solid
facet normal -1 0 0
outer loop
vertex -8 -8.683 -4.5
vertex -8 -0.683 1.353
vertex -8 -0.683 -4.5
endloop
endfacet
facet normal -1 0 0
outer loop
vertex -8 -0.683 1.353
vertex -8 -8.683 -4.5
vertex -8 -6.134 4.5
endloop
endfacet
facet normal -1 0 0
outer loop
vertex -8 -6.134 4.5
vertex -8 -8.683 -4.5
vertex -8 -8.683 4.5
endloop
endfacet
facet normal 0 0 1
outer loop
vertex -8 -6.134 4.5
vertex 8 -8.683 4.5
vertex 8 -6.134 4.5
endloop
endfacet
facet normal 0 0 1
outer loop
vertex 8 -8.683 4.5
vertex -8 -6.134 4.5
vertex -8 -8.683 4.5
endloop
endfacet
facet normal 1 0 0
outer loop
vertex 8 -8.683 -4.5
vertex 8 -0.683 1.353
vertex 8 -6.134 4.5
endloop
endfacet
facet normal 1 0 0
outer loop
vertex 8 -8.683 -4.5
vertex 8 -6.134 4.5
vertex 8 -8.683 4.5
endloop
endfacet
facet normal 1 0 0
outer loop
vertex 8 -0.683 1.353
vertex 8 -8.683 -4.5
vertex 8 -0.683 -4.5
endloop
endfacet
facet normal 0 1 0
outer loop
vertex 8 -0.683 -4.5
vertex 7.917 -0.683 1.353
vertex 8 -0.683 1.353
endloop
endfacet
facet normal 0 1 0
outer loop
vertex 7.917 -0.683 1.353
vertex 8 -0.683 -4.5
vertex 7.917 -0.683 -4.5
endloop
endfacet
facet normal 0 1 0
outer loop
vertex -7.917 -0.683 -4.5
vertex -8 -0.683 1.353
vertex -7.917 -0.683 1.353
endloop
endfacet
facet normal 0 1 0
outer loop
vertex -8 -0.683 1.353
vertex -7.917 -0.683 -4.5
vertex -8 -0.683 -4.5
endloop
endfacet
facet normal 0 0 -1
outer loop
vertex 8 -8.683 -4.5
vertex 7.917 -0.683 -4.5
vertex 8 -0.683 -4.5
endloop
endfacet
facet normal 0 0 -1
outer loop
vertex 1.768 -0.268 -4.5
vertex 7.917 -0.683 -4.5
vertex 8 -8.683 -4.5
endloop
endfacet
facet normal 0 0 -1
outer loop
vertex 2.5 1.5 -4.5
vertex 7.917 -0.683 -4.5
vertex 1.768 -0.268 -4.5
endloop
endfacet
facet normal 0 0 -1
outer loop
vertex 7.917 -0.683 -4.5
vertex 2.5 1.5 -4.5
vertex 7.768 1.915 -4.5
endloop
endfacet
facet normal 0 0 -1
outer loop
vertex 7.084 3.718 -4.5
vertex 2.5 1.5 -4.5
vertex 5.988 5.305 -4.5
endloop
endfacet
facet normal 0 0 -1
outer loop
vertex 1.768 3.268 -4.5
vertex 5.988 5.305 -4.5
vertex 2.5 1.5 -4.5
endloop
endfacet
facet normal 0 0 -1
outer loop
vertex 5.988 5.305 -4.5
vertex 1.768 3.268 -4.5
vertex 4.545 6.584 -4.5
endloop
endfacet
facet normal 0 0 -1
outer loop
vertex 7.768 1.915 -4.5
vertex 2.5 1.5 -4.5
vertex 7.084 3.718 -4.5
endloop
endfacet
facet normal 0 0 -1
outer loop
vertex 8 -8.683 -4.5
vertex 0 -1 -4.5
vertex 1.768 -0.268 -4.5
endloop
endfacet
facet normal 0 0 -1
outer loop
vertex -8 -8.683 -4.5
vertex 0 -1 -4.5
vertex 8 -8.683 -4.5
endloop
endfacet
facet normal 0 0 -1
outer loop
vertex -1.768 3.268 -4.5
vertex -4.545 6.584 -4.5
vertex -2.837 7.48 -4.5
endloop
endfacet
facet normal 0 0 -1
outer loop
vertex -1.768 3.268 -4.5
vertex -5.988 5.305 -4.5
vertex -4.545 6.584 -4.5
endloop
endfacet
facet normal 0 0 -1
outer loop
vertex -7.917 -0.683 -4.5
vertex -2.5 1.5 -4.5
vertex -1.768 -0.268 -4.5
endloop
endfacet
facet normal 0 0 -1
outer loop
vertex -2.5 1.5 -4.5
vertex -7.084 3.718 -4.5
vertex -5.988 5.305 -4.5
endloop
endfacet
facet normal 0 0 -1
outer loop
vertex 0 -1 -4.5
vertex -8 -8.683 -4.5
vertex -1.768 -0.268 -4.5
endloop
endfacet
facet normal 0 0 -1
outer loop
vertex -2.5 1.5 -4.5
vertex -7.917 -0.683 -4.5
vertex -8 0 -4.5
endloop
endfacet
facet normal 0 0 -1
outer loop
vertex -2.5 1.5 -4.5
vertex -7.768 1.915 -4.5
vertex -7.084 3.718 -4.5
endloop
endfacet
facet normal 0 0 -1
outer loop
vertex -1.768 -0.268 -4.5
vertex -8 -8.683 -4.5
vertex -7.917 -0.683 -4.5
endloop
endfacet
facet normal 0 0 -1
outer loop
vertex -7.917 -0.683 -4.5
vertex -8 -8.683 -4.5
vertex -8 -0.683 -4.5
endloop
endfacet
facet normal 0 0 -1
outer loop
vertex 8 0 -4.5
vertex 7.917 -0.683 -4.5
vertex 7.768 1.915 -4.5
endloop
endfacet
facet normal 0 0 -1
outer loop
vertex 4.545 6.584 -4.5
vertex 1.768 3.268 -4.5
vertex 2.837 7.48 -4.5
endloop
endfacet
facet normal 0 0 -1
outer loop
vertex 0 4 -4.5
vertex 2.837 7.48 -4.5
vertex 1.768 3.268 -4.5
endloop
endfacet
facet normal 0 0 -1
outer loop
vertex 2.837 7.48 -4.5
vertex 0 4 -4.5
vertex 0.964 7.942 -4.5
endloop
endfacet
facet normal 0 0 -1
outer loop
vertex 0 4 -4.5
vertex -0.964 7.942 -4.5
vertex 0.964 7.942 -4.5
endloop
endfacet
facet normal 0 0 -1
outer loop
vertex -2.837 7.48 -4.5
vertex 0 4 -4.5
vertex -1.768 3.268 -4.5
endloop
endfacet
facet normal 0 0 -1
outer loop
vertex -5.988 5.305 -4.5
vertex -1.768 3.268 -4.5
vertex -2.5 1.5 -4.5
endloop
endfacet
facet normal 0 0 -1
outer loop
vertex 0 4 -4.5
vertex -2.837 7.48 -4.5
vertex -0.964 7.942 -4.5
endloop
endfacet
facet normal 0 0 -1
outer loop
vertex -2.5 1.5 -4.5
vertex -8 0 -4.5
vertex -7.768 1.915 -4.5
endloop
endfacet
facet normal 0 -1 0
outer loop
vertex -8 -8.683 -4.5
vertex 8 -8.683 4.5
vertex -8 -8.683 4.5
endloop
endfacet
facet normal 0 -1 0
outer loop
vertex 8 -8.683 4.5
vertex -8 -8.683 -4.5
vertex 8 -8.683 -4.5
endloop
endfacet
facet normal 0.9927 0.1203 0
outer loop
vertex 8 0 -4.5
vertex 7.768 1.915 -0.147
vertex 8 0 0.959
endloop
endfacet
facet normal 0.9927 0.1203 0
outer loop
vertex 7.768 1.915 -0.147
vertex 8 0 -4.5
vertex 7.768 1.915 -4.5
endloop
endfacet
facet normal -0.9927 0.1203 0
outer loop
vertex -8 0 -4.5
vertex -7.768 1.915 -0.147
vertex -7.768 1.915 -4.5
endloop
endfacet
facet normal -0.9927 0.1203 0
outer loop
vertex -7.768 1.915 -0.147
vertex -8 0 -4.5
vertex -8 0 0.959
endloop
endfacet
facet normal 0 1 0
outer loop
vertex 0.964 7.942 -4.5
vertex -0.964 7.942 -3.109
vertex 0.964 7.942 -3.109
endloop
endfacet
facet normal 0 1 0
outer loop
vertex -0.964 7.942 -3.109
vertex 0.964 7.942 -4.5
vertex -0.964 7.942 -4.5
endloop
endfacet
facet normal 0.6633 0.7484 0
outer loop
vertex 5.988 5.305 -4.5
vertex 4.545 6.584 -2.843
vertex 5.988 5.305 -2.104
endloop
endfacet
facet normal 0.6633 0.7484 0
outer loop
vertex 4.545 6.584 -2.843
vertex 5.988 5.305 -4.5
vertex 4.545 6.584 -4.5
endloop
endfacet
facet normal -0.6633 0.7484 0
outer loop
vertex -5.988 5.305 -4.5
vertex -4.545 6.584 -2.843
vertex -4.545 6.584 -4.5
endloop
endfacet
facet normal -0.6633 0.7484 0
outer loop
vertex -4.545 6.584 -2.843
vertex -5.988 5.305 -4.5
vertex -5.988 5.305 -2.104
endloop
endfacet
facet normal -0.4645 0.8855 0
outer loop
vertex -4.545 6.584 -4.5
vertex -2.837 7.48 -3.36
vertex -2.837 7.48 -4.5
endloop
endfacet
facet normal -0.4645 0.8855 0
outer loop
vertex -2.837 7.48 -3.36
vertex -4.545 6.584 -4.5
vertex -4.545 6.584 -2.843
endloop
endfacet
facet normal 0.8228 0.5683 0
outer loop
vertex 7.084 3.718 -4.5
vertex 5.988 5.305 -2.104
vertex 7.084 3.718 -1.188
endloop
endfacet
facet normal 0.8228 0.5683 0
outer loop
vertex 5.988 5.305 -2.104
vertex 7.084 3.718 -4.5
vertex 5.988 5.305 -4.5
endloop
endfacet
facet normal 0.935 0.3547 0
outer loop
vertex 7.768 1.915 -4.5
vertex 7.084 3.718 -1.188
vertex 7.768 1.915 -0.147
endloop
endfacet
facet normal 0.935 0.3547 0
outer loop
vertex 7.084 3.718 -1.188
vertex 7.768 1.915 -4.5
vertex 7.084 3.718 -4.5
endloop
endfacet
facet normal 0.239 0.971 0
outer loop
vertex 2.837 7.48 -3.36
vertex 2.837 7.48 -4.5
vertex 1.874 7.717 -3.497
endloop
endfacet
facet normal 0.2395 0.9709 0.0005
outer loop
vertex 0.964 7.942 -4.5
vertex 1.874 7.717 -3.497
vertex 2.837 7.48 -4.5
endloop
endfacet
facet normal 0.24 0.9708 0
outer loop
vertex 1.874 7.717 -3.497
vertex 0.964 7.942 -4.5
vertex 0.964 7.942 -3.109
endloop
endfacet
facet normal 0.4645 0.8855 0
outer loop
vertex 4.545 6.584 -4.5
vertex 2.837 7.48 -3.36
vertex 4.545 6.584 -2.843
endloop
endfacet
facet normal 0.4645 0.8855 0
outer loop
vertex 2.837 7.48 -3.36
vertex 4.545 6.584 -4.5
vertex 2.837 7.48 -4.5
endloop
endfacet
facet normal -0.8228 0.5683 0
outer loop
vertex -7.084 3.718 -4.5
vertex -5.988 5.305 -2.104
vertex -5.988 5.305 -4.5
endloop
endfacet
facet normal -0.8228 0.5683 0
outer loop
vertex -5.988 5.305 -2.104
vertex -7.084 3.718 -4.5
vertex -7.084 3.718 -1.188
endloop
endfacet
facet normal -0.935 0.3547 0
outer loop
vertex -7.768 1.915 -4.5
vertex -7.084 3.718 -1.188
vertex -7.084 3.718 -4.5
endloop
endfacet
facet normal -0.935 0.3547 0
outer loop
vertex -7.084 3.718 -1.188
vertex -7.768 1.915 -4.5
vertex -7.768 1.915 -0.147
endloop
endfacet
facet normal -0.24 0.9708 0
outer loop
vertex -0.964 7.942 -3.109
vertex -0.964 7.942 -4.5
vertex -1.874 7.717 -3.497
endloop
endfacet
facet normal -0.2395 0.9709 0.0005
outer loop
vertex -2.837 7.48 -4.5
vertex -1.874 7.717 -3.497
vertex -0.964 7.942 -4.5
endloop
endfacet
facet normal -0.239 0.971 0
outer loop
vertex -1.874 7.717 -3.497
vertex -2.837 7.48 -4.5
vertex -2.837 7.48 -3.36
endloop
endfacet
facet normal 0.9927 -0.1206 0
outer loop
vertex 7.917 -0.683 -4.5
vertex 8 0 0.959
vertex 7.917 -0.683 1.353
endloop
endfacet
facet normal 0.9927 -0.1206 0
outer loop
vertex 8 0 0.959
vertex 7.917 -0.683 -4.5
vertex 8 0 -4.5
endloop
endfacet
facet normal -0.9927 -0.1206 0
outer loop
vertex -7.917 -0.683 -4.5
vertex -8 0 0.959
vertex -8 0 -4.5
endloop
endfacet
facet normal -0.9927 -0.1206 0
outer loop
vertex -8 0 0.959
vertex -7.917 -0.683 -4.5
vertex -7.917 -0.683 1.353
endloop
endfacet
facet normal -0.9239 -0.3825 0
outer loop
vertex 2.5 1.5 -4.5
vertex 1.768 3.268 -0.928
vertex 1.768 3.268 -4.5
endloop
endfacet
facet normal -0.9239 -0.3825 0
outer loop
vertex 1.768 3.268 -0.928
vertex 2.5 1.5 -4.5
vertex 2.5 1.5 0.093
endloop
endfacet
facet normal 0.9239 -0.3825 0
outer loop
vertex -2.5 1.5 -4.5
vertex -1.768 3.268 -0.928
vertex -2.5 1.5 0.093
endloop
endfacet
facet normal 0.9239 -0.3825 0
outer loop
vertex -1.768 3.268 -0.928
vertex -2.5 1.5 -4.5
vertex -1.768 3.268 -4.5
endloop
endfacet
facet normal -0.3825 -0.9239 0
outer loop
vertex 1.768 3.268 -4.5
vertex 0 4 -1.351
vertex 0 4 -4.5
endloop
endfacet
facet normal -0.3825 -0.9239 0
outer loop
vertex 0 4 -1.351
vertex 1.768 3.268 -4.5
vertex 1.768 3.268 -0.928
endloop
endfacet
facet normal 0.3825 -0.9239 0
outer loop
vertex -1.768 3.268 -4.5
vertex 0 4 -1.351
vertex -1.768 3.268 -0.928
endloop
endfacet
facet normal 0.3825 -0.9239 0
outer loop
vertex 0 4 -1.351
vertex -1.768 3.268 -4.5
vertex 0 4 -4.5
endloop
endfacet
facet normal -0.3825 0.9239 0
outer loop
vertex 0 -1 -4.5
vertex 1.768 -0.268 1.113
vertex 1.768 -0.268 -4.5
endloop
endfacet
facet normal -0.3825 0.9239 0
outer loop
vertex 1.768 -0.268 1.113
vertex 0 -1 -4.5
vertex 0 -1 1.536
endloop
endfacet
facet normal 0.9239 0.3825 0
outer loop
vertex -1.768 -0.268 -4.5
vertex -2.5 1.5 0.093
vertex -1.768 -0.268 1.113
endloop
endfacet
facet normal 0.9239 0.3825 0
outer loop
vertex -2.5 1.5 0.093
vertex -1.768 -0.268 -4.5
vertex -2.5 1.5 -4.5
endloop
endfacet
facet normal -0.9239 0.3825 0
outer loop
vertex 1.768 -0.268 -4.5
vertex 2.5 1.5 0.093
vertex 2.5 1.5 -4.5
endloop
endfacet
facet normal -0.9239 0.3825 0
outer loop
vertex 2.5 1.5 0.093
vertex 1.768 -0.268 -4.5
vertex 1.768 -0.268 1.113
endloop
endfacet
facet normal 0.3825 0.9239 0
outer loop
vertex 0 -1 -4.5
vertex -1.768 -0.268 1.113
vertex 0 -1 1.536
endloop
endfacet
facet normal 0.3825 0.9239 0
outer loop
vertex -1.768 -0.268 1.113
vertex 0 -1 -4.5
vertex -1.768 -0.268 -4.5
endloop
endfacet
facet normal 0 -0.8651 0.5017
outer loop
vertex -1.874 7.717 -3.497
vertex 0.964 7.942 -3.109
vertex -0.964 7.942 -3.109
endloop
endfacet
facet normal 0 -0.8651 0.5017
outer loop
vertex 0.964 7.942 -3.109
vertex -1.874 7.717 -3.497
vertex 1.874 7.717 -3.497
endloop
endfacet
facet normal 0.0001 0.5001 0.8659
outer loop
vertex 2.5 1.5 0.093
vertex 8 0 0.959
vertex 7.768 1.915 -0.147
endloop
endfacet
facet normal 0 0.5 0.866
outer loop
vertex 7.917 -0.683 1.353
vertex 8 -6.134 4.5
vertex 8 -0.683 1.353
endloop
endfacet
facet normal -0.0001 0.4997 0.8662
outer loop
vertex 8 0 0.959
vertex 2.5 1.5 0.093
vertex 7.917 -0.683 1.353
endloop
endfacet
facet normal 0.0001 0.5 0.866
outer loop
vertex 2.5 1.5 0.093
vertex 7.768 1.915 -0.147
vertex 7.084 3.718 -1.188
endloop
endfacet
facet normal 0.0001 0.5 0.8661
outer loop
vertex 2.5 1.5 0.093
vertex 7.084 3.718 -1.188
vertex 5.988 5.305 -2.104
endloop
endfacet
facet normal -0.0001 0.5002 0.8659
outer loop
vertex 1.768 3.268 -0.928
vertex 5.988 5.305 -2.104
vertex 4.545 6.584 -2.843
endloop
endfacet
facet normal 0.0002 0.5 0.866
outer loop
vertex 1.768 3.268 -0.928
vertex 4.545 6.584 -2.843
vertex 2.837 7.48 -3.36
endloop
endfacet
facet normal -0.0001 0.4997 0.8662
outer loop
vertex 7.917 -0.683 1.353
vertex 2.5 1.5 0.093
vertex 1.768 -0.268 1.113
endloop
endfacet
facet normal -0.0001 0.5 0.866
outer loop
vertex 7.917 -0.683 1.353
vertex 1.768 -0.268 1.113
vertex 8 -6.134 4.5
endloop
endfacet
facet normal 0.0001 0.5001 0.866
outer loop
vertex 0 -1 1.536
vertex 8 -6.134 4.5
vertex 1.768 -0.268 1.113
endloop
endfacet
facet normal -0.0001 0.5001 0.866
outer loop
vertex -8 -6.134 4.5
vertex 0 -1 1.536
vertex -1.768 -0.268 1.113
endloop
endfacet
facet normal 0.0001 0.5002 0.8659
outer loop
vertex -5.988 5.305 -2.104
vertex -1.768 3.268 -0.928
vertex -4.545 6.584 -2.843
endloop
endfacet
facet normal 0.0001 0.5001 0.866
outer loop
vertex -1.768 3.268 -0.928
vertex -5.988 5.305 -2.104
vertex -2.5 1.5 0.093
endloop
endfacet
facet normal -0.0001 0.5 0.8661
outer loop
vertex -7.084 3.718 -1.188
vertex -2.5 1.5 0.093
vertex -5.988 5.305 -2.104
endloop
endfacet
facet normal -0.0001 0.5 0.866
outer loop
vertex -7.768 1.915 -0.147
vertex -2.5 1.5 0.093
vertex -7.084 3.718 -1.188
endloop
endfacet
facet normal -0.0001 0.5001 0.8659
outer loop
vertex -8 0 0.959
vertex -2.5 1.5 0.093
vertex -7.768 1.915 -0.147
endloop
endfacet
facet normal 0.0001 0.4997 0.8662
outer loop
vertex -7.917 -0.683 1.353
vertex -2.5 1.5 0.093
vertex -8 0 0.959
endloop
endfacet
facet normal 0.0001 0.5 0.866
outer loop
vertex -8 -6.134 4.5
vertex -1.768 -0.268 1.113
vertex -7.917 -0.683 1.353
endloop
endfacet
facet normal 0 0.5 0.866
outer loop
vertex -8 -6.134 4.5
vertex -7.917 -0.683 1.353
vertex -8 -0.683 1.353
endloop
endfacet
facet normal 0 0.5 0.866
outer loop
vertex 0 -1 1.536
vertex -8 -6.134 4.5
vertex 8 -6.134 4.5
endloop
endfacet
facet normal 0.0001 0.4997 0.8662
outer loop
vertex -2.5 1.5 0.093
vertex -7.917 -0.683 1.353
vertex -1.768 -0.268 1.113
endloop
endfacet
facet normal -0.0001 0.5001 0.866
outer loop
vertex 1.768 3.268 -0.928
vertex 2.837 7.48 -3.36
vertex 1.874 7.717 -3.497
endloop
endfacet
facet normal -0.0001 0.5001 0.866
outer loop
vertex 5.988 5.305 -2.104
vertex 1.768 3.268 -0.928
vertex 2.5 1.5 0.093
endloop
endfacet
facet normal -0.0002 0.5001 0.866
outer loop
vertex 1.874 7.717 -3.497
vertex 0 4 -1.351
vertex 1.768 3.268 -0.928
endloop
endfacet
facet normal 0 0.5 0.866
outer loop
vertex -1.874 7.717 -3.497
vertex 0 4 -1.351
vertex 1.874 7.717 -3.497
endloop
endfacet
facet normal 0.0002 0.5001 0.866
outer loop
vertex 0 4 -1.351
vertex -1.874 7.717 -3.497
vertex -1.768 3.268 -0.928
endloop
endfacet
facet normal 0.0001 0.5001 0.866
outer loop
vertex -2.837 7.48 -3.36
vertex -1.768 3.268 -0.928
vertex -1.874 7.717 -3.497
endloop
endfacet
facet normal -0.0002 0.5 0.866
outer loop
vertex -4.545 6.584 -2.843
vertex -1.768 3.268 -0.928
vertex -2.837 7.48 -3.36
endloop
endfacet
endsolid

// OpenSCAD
bredde = 18.4;
hoyde = 9;
diameter = 16;
diameter_hull = 5;

module Base() {
    translate([0, -diameter/3+0.65, 0]) {
        #cube([diameter, diameter/2, hoyde], center = true);
    }
    difference() {
        cylinder(h = hoyde, d = diameter, center = true);
    }
}

module Hull() {
    translate([0, (diameter / 2) - 6.5, 0]) {
        cylinder(h = hoyde + 0.5, d = diameter_hull, center=true);
    }

}

module Cutaway() {
        translate([0, 2, 5]) {
        rotate([-30, 0, 0]) {
            cube([bredde, bredde, hoyde], center = true);
        }
        
    }
}

difference() {
    Base();
    Hull();
    Cutaway();
}
